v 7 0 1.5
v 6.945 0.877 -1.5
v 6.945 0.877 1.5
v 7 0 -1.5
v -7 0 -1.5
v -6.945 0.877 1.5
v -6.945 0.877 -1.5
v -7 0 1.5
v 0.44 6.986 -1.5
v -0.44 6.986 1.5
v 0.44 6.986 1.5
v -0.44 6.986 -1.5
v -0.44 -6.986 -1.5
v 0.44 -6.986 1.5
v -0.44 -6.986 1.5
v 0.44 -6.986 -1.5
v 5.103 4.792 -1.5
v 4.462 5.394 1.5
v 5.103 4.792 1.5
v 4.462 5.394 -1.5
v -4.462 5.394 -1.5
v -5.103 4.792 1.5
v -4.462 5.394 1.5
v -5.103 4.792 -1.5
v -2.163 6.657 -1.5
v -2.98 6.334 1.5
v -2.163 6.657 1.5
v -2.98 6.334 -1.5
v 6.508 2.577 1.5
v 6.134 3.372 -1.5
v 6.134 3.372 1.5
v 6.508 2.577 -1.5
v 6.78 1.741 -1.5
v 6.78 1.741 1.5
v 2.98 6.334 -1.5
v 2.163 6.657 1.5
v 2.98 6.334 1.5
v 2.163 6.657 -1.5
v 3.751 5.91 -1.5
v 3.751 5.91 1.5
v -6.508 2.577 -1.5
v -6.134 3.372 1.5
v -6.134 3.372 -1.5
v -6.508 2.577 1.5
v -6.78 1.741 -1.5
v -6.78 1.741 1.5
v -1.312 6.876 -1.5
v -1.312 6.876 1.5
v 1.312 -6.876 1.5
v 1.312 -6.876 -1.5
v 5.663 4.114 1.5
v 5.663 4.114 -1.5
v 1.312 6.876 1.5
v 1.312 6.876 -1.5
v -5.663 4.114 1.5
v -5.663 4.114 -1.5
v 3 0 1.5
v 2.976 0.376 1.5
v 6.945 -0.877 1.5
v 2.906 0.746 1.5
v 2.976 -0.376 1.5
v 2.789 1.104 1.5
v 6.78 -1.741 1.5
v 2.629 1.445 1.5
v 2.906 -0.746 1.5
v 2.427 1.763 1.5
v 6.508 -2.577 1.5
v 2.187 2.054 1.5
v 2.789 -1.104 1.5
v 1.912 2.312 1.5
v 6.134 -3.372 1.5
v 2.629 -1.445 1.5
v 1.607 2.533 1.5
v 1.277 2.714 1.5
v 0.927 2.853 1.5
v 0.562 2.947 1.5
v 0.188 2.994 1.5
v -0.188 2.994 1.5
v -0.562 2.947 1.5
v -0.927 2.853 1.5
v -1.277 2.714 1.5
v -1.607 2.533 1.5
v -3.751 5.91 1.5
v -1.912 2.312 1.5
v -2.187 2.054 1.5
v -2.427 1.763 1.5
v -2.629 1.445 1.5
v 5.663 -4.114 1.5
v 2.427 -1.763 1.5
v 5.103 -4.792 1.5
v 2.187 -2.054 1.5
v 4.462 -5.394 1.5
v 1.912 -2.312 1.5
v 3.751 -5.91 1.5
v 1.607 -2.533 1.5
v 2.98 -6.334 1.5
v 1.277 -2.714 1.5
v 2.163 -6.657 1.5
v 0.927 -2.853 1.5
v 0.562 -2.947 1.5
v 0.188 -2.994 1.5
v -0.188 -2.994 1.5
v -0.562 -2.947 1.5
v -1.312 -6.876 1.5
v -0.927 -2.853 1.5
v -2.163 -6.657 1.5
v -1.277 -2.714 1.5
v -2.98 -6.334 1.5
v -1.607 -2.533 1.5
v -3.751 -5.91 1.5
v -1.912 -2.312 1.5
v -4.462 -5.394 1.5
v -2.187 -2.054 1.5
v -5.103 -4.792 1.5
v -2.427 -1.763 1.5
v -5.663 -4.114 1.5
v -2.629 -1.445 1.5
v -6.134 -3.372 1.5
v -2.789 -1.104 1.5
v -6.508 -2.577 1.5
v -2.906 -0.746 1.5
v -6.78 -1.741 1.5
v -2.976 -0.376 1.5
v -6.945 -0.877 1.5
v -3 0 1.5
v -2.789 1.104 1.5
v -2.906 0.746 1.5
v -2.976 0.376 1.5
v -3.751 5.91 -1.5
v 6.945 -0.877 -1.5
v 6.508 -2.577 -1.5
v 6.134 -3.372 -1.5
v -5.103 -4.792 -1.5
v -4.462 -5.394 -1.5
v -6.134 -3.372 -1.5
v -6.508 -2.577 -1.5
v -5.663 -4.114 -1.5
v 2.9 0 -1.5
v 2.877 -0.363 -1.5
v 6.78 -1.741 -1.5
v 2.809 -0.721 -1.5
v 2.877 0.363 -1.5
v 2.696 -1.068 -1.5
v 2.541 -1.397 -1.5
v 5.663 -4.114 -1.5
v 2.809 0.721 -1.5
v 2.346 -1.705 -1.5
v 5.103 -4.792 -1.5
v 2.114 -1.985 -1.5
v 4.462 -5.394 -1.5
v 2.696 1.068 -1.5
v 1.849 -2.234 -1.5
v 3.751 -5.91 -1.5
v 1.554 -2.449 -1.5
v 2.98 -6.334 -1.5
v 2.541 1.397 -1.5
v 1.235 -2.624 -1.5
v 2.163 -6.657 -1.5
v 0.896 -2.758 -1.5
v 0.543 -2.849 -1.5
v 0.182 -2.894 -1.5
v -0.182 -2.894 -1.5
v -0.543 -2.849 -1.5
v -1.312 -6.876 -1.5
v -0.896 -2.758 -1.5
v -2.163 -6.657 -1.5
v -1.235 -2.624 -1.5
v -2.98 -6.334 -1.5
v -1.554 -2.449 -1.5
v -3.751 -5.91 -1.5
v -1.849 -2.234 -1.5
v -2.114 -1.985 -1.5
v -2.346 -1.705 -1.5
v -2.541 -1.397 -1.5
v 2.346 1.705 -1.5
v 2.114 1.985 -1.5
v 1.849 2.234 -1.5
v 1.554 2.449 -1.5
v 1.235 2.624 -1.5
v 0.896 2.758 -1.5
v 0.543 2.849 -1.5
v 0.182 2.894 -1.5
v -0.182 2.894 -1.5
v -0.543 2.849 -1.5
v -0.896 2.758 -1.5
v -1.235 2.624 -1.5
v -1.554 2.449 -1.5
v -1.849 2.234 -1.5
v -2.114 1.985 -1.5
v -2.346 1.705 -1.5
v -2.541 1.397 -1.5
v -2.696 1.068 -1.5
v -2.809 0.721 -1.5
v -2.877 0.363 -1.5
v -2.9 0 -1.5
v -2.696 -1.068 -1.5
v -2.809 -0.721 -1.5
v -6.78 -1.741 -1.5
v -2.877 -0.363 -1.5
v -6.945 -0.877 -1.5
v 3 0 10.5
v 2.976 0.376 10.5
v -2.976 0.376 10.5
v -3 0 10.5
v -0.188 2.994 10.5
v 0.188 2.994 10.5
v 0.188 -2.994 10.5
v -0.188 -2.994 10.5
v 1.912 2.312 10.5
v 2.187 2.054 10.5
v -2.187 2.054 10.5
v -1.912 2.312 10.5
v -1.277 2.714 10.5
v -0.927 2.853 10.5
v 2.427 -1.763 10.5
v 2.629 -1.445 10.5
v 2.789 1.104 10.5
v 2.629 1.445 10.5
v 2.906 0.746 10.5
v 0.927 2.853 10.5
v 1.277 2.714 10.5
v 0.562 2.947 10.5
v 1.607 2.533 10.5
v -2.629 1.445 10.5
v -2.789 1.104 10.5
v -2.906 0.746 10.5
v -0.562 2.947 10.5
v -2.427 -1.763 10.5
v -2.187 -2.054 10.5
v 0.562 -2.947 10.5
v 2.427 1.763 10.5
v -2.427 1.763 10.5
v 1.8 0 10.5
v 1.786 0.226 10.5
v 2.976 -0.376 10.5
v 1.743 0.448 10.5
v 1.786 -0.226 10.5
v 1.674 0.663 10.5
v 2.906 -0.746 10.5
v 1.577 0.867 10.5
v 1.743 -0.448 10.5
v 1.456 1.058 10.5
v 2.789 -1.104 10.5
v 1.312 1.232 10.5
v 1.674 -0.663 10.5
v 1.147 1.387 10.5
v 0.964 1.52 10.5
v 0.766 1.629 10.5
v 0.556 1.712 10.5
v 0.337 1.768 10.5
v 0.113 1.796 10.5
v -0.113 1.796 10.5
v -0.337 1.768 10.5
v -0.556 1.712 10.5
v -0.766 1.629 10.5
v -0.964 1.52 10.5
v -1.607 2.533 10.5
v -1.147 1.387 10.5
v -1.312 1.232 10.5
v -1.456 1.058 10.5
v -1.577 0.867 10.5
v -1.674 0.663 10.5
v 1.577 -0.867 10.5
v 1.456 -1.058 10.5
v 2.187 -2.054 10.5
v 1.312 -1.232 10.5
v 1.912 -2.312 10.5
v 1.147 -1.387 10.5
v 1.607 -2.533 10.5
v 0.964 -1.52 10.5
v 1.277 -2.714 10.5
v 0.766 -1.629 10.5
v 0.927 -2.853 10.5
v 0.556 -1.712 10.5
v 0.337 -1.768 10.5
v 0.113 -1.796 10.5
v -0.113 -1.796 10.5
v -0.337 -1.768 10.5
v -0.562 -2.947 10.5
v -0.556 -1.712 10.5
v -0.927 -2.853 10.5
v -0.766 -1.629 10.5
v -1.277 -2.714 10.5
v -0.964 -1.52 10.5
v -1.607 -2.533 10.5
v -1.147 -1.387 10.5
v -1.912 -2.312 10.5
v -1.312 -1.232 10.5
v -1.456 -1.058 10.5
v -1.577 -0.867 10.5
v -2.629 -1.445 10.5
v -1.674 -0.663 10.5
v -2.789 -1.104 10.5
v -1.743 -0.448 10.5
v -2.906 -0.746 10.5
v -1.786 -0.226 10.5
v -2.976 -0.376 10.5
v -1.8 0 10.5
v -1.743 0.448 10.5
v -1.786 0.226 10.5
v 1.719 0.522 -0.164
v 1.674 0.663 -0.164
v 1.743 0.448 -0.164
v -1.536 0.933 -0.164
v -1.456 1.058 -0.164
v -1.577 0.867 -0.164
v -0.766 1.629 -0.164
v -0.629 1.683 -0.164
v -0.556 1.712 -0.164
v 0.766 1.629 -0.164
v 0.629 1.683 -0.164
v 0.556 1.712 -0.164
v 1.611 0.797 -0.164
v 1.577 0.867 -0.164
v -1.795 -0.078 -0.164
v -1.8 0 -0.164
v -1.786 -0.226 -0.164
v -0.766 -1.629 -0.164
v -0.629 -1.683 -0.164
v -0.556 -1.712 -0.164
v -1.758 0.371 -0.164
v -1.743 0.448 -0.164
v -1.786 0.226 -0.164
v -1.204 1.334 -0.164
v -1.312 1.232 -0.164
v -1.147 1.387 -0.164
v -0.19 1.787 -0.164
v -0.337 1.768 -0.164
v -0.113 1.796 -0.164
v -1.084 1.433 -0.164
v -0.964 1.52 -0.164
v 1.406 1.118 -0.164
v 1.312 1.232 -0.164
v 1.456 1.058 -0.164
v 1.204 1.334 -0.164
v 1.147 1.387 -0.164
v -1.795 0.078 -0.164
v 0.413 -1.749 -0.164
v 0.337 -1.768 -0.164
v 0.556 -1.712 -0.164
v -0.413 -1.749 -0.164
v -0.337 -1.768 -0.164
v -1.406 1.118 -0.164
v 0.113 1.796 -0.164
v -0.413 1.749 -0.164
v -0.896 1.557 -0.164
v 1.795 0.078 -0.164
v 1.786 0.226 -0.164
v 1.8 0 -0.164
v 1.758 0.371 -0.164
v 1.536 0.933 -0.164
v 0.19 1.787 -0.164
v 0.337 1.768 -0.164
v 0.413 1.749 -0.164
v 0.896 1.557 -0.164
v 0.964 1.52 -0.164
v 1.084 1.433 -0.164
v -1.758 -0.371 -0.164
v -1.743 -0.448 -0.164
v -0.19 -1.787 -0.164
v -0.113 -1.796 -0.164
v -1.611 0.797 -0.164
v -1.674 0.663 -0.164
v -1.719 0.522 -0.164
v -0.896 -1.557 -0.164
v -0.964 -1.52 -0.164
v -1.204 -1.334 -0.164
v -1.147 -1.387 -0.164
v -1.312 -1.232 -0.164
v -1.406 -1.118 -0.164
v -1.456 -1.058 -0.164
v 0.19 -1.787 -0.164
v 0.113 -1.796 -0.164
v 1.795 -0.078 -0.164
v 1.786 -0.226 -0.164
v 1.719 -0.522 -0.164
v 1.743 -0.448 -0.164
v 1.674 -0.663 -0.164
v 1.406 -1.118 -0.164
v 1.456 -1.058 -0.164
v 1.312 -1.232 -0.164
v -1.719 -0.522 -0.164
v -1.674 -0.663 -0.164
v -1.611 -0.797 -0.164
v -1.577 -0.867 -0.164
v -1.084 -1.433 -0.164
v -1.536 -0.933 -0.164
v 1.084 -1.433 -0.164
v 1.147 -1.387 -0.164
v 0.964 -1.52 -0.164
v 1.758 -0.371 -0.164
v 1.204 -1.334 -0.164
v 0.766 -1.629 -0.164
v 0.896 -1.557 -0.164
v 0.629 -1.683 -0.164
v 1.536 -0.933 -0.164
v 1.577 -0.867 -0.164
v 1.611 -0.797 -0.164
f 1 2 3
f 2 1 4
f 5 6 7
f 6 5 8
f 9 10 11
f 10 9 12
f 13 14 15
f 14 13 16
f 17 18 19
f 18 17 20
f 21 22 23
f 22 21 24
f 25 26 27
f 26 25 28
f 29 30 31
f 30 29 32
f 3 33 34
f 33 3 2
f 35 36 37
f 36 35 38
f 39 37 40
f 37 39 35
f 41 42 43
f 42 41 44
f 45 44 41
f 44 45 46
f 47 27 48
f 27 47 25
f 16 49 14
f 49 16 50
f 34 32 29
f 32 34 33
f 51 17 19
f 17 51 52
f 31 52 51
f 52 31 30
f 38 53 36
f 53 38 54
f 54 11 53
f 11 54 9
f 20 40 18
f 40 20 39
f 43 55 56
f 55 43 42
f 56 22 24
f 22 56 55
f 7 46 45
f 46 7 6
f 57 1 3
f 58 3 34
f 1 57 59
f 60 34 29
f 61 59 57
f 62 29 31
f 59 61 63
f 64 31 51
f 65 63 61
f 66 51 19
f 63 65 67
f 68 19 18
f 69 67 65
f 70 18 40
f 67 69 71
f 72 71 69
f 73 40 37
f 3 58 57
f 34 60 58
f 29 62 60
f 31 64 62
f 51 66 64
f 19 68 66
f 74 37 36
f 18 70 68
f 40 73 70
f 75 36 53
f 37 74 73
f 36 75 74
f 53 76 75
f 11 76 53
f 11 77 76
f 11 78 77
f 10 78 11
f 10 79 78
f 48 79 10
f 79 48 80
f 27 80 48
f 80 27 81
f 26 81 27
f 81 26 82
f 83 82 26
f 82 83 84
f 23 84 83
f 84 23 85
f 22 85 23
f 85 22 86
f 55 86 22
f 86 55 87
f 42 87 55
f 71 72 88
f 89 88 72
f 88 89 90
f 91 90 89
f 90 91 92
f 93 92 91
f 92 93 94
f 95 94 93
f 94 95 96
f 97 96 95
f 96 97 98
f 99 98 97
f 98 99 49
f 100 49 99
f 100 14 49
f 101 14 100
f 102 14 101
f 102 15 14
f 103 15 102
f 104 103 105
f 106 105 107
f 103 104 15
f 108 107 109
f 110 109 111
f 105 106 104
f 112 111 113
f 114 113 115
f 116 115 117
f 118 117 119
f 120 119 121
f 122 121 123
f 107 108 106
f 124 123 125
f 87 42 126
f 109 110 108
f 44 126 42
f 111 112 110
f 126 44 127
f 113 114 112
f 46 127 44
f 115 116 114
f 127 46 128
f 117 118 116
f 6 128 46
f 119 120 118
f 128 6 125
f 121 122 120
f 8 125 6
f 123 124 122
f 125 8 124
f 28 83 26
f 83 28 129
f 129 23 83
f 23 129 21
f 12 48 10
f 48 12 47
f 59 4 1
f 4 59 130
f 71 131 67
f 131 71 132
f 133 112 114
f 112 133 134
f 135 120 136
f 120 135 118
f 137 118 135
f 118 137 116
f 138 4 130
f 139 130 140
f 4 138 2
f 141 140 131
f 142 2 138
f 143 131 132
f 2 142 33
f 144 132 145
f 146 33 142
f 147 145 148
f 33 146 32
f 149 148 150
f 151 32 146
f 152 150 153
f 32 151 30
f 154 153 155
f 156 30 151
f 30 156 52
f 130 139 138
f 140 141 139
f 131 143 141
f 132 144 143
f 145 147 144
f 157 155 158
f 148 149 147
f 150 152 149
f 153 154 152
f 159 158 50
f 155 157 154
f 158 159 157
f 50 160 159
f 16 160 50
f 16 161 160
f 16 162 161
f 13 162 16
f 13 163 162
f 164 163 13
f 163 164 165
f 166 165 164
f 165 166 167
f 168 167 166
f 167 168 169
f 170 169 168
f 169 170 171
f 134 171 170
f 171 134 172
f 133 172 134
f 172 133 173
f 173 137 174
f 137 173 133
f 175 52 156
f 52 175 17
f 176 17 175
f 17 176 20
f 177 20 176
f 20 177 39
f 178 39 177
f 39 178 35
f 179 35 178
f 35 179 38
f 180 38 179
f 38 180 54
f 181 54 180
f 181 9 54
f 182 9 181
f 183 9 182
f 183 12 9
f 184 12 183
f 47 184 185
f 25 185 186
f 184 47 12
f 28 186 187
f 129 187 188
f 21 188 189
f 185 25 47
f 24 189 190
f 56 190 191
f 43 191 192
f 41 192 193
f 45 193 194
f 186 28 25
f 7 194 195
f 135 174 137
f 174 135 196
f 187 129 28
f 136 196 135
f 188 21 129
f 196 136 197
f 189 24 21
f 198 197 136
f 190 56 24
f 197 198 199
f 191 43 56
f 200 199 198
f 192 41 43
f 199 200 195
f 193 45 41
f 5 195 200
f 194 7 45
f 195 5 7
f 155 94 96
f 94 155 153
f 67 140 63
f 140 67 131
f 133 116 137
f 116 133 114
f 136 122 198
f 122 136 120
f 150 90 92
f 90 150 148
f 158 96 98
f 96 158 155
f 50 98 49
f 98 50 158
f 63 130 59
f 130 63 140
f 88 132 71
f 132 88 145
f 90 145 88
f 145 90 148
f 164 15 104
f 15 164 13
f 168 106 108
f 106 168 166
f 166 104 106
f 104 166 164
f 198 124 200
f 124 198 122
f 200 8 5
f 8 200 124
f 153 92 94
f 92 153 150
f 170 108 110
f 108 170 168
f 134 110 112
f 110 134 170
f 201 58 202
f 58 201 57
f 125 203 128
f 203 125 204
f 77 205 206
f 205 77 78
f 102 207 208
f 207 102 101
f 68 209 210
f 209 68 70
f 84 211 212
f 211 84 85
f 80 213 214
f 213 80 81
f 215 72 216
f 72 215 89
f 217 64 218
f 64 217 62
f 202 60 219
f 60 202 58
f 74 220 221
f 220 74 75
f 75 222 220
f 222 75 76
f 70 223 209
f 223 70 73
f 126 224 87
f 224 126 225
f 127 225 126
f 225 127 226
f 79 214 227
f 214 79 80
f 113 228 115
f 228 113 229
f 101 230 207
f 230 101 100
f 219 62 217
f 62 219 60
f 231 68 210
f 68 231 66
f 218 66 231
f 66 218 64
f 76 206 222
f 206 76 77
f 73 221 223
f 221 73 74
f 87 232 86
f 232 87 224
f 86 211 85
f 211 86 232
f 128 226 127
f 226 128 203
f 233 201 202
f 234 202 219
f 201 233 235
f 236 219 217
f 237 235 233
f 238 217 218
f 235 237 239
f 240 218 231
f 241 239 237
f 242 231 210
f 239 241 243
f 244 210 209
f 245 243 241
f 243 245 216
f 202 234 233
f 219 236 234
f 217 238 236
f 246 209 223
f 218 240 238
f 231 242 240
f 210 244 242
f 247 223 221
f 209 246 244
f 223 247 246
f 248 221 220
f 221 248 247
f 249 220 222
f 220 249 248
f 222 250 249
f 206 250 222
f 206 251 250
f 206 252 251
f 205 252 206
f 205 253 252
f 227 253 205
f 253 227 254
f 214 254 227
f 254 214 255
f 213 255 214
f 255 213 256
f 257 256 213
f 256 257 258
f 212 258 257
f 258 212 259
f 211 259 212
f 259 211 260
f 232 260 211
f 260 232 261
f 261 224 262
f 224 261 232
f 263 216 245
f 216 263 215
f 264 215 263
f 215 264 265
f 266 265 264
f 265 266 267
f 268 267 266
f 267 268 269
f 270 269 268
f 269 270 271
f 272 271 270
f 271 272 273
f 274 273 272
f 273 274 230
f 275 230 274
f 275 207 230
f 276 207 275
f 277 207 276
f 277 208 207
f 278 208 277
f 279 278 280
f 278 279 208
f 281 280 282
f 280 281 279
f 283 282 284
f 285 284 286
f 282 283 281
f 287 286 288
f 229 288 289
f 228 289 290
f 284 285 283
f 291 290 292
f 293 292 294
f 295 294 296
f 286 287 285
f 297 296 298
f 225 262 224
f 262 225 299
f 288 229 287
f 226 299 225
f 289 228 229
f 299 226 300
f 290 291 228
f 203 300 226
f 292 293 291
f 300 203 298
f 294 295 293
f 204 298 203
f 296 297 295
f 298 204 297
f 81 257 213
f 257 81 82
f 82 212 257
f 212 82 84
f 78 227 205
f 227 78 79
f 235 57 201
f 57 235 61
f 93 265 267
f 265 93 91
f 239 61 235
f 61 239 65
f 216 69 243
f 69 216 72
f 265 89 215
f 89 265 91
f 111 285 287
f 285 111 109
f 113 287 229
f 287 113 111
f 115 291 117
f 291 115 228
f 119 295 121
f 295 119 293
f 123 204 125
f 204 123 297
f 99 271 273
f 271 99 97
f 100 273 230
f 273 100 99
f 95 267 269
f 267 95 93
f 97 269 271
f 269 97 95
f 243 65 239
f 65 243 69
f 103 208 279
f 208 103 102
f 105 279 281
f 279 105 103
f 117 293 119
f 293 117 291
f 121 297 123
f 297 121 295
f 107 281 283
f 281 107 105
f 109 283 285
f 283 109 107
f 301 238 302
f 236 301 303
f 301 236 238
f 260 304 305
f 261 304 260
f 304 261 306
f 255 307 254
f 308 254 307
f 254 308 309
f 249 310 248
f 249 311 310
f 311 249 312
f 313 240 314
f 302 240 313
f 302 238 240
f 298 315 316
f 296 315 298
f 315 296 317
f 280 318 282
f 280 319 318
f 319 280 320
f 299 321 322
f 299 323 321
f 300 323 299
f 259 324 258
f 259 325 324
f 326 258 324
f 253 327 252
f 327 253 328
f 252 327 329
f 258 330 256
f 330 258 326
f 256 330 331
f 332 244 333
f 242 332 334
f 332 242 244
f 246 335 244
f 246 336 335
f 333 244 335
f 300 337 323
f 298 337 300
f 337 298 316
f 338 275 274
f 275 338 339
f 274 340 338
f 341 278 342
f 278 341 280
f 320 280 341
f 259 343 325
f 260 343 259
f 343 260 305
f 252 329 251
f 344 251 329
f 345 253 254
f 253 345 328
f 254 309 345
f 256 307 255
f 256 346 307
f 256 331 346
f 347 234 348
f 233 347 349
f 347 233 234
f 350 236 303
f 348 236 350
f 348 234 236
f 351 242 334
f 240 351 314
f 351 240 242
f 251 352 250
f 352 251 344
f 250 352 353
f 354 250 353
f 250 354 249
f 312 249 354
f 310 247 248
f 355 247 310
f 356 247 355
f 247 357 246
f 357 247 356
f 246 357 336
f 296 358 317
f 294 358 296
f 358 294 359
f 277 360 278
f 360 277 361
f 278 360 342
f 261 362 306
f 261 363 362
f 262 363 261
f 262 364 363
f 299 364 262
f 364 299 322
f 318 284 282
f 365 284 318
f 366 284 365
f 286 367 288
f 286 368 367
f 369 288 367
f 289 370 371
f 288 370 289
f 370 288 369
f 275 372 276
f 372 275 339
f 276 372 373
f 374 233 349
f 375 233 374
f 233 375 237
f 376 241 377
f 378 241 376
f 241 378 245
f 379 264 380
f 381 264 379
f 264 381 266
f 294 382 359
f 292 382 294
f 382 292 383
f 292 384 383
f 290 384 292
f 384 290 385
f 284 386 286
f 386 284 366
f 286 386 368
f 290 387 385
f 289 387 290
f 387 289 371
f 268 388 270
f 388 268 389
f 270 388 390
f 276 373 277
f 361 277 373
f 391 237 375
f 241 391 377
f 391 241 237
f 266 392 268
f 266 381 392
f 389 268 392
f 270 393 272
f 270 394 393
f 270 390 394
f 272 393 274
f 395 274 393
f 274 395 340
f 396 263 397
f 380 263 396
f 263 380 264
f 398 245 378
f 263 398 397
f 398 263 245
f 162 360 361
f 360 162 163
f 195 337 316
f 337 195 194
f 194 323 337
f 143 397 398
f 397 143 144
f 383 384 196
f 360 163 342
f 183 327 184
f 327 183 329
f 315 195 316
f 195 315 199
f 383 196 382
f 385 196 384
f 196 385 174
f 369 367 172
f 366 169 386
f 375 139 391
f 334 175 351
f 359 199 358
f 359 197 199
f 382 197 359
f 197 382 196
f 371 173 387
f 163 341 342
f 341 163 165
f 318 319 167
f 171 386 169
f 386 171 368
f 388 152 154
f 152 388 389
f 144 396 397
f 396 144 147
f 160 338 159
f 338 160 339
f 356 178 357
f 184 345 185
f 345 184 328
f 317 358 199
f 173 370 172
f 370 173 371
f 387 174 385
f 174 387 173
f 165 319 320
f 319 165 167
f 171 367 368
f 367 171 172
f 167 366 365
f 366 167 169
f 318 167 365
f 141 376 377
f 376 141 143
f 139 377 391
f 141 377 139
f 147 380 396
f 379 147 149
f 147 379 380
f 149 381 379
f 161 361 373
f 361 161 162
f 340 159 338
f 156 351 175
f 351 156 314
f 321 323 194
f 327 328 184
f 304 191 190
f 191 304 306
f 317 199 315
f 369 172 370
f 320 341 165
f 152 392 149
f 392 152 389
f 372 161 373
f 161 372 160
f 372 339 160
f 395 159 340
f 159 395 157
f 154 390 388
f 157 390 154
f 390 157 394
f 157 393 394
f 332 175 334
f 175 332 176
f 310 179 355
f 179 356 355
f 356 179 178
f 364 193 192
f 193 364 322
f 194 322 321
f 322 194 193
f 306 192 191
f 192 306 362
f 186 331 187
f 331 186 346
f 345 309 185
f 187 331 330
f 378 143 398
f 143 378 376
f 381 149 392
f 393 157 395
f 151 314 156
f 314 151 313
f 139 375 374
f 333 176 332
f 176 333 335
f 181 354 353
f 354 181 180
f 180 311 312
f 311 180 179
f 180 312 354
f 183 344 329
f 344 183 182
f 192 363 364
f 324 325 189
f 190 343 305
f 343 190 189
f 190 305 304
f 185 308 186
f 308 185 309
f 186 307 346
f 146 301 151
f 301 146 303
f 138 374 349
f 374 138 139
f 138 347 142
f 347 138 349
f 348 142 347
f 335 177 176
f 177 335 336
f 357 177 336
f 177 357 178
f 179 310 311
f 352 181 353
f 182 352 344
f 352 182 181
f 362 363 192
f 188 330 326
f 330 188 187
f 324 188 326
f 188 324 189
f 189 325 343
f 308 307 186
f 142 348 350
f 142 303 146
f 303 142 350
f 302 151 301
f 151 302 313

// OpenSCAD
$fn = 50;


difference() {
	union() {
		translate(v = [0, 0, -1.5000000000]) {
			cylinder(h = 3, r = 7.0000000000);
		}
		translate(v = [0, 0, -1.5000000000]) {
			cylinder(h = 12, r = 3.0000000000);
		}
	}
	union() {
		translate(v = [0, 0, -1.5000000000]) {
			rotate(a = [0, 180, 0]) {
				difference() {
					union() {
						translate(v = [0, 0, -12.0000000000]) {
							cylinder(h = 12, r = 1.5000000000);
						}
						translate(v = [0, 0, -12.0000000000]) {
							cylinder(h = 12, r = 1.8000000000);
						}
						translate(v = [0, 0, -1.7000000000]) {
							cylinder(h = 1.7000000000, r1 = 1.5000000000, r2 = 2.9000000000);
						}
						translate(v = [0, 0, -12.0000000000]) {
							cylinder(h = 12, r = 1.5000000000);
						}
					}
					union();
				}
			}
		}
		translate(v = [0, 0, -50.0000000000]) {
			cylinder(h = 100, r = 1.5000000000);
		}
	}
}
